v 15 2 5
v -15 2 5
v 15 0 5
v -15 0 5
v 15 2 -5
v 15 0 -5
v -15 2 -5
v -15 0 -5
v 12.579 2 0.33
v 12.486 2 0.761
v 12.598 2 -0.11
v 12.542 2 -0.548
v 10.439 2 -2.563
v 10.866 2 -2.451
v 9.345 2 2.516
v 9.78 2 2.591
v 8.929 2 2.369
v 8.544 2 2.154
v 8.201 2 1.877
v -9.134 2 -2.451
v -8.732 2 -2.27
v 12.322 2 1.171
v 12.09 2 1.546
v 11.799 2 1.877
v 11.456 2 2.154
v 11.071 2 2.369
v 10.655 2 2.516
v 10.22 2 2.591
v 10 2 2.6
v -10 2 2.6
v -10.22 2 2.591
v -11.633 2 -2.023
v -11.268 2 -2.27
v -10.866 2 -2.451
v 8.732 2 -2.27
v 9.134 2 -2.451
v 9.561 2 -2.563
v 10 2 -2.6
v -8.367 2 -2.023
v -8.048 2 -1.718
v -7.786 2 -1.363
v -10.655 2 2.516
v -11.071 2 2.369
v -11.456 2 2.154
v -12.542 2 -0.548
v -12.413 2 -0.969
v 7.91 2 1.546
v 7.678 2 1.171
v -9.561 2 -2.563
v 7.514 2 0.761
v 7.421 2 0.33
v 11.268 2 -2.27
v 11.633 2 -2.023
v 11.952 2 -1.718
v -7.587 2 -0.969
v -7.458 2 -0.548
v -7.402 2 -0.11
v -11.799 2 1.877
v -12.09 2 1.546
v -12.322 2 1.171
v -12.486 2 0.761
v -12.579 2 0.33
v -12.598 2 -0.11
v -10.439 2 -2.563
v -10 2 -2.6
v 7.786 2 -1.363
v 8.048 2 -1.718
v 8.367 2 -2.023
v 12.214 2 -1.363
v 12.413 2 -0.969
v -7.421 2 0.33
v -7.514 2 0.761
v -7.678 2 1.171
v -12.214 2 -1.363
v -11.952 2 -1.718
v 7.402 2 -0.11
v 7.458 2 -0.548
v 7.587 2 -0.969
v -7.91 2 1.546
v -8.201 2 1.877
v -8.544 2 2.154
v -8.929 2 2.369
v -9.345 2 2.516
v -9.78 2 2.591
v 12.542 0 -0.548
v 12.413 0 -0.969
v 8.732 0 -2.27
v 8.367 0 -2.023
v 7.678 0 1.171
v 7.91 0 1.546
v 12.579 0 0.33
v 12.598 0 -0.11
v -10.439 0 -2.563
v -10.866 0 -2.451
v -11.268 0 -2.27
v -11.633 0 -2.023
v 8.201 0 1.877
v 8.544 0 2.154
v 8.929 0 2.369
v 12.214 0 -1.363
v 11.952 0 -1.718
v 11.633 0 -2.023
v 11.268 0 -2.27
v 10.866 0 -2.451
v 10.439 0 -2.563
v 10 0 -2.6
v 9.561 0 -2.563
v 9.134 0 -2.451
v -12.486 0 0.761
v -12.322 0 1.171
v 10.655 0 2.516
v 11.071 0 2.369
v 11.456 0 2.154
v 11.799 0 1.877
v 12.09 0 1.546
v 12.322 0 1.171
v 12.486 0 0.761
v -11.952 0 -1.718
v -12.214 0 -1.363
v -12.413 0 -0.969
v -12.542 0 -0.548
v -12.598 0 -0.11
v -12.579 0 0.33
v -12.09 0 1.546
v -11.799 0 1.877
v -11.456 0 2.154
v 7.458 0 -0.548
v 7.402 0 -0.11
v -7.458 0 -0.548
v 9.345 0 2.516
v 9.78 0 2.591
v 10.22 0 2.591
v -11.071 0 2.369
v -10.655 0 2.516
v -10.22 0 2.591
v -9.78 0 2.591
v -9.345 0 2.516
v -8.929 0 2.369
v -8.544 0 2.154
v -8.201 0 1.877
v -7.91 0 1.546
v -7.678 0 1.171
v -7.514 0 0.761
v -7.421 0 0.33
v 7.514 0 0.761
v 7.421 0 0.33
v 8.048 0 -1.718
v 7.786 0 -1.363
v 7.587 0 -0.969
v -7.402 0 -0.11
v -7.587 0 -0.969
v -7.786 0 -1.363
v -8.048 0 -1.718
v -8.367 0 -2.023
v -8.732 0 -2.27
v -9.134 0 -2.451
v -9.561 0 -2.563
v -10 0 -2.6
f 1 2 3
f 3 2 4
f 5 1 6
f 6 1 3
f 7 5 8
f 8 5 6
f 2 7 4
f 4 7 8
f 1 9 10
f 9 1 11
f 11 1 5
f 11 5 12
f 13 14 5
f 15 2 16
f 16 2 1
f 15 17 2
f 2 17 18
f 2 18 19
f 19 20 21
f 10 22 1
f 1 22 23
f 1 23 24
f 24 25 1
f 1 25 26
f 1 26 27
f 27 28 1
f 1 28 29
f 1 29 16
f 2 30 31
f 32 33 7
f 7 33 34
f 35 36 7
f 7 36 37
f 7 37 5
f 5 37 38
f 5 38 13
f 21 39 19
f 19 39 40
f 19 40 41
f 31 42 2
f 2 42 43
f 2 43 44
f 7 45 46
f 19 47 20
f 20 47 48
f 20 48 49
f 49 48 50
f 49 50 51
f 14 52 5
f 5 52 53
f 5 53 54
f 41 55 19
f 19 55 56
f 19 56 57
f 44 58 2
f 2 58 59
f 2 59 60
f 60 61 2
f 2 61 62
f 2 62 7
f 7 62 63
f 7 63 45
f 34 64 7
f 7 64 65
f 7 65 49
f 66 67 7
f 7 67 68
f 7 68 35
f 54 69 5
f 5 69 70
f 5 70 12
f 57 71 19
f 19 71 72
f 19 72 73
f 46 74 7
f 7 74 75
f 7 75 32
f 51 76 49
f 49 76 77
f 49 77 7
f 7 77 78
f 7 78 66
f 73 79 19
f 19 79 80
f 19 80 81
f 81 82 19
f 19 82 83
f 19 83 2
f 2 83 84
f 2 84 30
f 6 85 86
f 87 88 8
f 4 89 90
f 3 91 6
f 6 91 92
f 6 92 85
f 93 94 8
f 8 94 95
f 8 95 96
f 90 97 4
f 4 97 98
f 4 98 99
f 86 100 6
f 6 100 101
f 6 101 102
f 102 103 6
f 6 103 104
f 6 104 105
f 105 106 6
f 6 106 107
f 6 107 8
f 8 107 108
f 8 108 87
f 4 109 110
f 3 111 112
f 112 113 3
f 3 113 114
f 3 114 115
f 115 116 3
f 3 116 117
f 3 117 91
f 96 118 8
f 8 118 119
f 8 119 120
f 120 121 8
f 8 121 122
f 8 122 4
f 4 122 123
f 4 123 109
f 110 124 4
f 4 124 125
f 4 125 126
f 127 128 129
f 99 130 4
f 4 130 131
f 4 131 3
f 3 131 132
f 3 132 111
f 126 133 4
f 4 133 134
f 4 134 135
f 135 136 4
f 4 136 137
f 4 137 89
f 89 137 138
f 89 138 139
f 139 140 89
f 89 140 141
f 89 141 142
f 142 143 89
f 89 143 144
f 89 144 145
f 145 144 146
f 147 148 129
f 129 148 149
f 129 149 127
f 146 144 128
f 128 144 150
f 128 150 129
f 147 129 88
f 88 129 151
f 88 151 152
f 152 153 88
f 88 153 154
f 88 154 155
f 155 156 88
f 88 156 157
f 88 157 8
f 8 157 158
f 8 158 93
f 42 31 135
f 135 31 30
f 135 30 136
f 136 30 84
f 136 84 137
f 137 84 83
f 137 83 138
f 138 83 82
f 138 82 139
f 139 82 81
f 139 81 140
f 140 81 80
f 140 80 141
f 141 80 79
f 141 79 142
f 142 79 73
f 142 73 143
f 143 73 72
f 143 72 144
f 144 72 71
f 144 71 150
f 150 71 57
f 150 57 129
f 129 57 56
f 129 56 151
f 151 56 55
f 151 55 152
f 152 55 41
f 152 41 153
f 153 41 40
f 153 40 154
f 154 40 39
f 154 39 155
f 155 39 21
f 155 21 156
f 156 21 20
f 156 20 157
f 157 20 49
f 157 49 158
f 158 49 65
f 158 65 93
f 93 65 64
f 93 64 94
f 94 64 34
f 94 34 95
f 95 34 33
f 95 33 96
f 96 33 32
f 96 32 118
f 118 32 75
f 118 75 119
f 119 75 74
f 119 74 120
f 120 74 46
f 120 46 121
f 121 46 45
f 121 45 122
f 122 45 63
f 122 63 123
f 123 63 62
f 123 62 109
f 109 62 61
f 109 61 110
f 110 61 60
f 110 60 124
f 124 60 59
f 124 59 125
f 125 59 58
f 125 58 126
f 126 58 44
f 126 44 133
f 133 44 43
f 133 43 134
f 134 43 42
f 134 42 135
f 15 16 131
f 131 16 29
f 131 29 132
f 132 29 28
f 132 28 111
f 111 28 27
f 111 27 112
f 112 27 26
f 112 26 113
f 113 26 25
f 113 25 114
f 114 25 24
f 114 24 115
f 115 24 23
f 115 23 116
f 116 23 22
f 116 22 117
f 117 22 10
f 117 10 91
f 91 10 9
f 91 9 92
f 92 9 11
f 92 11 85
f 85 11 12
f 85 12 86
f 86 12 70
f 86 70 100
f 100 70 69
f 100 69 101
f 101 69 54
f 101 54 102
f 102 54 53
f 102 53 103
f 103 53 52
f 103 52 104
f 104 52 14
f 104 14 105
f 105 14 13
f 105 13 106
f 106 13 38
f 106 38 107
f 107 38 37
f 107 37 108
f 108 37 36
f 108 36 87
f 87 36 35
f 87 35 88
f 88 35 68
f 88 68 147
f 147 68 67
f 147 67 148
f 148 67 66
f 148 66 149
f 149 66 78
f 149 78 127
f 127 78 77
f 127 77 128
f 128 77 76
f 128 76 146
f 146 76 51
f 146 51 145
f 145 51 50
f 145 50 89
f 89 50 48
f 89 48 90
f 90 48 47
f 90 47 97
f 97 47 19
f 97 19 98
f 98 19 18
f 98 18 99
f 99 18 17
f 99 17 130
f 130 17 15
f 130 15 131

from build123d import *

# Parameters (mm, degrees)
SKETCH_1_W          = 30
SKETCH_1_H          = 10
EXTRUDE_1_DEPTH     = 2
SKETCH_2_R          = 2.6
CUT_EXTRUDE_1_DEPTH = 10


with BuildPart() as part:
    # 草图1 → 凸台-拉伸1 (new body)
    # profile 1 of 2: a face of its own
    with BuildSketch(Plane(origin=(0, 0, 0), x_dir=(1, 0, 0), z_dir=(0, 1, 0))):
        Rectangle(SKETCH_1_W, SKETCH_1_H)
        with BuildLine():
            Line((10, -2.5), (-10, -2.5))
            ThreePointArc((-10, -2.5), (-12.5, 0), (-10, 2.5))
            Line((-10, 2.5), (10, 2.5))
            ThreePointArc((10, 2.5), (11.767766953, 1.767766953), (12.5, 0))
            ThreePointArc((12.5, 0), (11.767766953, -1.767766953), (10, -2.5))
        make_face(mode=Mode.SUBTRACT)
    # profile 2 of 2: a face of its own
    with BuildSketch(Plane(origin=(0, 0, 0), x_dir=(1, 0, 0), z_dir=(0, 1, 0))):
        with BuildLine():
            ThreePointArc((-7.5, 0), (-8.232233047, -1.767766953), (-10, -2.5))
            Line((-10, -2.5), (10, -2.5))
            ThreePointArc((10, -2.5), (7.5, 0), (10, 2.5))
            Line((10, 2.5), (-10, 2.5))
            ThreePointArc((-10, 2.5), (-8.232233047, 1.767766953), (-7.5, 0))
        make_face()
    extrude(amount=EXTRUDE_1_DEPTH)

    # 草图2 → 切除-拉伸1 (cut)
    with BuildSketch(Plane.XZ):
        with Locations(Location((-10, 0, 0), (0, 0, 270))):
            Circle(SKETCH_2_R)
        with Locations(Location((10, 0, 0), (0, 0, 270))):
            Circle(SKETCH_2_R)
    extrude(amount=-CUT_EXTRUDE_1_DEPTH, mode=Mode.SUBTRACT)


solid = part.part
